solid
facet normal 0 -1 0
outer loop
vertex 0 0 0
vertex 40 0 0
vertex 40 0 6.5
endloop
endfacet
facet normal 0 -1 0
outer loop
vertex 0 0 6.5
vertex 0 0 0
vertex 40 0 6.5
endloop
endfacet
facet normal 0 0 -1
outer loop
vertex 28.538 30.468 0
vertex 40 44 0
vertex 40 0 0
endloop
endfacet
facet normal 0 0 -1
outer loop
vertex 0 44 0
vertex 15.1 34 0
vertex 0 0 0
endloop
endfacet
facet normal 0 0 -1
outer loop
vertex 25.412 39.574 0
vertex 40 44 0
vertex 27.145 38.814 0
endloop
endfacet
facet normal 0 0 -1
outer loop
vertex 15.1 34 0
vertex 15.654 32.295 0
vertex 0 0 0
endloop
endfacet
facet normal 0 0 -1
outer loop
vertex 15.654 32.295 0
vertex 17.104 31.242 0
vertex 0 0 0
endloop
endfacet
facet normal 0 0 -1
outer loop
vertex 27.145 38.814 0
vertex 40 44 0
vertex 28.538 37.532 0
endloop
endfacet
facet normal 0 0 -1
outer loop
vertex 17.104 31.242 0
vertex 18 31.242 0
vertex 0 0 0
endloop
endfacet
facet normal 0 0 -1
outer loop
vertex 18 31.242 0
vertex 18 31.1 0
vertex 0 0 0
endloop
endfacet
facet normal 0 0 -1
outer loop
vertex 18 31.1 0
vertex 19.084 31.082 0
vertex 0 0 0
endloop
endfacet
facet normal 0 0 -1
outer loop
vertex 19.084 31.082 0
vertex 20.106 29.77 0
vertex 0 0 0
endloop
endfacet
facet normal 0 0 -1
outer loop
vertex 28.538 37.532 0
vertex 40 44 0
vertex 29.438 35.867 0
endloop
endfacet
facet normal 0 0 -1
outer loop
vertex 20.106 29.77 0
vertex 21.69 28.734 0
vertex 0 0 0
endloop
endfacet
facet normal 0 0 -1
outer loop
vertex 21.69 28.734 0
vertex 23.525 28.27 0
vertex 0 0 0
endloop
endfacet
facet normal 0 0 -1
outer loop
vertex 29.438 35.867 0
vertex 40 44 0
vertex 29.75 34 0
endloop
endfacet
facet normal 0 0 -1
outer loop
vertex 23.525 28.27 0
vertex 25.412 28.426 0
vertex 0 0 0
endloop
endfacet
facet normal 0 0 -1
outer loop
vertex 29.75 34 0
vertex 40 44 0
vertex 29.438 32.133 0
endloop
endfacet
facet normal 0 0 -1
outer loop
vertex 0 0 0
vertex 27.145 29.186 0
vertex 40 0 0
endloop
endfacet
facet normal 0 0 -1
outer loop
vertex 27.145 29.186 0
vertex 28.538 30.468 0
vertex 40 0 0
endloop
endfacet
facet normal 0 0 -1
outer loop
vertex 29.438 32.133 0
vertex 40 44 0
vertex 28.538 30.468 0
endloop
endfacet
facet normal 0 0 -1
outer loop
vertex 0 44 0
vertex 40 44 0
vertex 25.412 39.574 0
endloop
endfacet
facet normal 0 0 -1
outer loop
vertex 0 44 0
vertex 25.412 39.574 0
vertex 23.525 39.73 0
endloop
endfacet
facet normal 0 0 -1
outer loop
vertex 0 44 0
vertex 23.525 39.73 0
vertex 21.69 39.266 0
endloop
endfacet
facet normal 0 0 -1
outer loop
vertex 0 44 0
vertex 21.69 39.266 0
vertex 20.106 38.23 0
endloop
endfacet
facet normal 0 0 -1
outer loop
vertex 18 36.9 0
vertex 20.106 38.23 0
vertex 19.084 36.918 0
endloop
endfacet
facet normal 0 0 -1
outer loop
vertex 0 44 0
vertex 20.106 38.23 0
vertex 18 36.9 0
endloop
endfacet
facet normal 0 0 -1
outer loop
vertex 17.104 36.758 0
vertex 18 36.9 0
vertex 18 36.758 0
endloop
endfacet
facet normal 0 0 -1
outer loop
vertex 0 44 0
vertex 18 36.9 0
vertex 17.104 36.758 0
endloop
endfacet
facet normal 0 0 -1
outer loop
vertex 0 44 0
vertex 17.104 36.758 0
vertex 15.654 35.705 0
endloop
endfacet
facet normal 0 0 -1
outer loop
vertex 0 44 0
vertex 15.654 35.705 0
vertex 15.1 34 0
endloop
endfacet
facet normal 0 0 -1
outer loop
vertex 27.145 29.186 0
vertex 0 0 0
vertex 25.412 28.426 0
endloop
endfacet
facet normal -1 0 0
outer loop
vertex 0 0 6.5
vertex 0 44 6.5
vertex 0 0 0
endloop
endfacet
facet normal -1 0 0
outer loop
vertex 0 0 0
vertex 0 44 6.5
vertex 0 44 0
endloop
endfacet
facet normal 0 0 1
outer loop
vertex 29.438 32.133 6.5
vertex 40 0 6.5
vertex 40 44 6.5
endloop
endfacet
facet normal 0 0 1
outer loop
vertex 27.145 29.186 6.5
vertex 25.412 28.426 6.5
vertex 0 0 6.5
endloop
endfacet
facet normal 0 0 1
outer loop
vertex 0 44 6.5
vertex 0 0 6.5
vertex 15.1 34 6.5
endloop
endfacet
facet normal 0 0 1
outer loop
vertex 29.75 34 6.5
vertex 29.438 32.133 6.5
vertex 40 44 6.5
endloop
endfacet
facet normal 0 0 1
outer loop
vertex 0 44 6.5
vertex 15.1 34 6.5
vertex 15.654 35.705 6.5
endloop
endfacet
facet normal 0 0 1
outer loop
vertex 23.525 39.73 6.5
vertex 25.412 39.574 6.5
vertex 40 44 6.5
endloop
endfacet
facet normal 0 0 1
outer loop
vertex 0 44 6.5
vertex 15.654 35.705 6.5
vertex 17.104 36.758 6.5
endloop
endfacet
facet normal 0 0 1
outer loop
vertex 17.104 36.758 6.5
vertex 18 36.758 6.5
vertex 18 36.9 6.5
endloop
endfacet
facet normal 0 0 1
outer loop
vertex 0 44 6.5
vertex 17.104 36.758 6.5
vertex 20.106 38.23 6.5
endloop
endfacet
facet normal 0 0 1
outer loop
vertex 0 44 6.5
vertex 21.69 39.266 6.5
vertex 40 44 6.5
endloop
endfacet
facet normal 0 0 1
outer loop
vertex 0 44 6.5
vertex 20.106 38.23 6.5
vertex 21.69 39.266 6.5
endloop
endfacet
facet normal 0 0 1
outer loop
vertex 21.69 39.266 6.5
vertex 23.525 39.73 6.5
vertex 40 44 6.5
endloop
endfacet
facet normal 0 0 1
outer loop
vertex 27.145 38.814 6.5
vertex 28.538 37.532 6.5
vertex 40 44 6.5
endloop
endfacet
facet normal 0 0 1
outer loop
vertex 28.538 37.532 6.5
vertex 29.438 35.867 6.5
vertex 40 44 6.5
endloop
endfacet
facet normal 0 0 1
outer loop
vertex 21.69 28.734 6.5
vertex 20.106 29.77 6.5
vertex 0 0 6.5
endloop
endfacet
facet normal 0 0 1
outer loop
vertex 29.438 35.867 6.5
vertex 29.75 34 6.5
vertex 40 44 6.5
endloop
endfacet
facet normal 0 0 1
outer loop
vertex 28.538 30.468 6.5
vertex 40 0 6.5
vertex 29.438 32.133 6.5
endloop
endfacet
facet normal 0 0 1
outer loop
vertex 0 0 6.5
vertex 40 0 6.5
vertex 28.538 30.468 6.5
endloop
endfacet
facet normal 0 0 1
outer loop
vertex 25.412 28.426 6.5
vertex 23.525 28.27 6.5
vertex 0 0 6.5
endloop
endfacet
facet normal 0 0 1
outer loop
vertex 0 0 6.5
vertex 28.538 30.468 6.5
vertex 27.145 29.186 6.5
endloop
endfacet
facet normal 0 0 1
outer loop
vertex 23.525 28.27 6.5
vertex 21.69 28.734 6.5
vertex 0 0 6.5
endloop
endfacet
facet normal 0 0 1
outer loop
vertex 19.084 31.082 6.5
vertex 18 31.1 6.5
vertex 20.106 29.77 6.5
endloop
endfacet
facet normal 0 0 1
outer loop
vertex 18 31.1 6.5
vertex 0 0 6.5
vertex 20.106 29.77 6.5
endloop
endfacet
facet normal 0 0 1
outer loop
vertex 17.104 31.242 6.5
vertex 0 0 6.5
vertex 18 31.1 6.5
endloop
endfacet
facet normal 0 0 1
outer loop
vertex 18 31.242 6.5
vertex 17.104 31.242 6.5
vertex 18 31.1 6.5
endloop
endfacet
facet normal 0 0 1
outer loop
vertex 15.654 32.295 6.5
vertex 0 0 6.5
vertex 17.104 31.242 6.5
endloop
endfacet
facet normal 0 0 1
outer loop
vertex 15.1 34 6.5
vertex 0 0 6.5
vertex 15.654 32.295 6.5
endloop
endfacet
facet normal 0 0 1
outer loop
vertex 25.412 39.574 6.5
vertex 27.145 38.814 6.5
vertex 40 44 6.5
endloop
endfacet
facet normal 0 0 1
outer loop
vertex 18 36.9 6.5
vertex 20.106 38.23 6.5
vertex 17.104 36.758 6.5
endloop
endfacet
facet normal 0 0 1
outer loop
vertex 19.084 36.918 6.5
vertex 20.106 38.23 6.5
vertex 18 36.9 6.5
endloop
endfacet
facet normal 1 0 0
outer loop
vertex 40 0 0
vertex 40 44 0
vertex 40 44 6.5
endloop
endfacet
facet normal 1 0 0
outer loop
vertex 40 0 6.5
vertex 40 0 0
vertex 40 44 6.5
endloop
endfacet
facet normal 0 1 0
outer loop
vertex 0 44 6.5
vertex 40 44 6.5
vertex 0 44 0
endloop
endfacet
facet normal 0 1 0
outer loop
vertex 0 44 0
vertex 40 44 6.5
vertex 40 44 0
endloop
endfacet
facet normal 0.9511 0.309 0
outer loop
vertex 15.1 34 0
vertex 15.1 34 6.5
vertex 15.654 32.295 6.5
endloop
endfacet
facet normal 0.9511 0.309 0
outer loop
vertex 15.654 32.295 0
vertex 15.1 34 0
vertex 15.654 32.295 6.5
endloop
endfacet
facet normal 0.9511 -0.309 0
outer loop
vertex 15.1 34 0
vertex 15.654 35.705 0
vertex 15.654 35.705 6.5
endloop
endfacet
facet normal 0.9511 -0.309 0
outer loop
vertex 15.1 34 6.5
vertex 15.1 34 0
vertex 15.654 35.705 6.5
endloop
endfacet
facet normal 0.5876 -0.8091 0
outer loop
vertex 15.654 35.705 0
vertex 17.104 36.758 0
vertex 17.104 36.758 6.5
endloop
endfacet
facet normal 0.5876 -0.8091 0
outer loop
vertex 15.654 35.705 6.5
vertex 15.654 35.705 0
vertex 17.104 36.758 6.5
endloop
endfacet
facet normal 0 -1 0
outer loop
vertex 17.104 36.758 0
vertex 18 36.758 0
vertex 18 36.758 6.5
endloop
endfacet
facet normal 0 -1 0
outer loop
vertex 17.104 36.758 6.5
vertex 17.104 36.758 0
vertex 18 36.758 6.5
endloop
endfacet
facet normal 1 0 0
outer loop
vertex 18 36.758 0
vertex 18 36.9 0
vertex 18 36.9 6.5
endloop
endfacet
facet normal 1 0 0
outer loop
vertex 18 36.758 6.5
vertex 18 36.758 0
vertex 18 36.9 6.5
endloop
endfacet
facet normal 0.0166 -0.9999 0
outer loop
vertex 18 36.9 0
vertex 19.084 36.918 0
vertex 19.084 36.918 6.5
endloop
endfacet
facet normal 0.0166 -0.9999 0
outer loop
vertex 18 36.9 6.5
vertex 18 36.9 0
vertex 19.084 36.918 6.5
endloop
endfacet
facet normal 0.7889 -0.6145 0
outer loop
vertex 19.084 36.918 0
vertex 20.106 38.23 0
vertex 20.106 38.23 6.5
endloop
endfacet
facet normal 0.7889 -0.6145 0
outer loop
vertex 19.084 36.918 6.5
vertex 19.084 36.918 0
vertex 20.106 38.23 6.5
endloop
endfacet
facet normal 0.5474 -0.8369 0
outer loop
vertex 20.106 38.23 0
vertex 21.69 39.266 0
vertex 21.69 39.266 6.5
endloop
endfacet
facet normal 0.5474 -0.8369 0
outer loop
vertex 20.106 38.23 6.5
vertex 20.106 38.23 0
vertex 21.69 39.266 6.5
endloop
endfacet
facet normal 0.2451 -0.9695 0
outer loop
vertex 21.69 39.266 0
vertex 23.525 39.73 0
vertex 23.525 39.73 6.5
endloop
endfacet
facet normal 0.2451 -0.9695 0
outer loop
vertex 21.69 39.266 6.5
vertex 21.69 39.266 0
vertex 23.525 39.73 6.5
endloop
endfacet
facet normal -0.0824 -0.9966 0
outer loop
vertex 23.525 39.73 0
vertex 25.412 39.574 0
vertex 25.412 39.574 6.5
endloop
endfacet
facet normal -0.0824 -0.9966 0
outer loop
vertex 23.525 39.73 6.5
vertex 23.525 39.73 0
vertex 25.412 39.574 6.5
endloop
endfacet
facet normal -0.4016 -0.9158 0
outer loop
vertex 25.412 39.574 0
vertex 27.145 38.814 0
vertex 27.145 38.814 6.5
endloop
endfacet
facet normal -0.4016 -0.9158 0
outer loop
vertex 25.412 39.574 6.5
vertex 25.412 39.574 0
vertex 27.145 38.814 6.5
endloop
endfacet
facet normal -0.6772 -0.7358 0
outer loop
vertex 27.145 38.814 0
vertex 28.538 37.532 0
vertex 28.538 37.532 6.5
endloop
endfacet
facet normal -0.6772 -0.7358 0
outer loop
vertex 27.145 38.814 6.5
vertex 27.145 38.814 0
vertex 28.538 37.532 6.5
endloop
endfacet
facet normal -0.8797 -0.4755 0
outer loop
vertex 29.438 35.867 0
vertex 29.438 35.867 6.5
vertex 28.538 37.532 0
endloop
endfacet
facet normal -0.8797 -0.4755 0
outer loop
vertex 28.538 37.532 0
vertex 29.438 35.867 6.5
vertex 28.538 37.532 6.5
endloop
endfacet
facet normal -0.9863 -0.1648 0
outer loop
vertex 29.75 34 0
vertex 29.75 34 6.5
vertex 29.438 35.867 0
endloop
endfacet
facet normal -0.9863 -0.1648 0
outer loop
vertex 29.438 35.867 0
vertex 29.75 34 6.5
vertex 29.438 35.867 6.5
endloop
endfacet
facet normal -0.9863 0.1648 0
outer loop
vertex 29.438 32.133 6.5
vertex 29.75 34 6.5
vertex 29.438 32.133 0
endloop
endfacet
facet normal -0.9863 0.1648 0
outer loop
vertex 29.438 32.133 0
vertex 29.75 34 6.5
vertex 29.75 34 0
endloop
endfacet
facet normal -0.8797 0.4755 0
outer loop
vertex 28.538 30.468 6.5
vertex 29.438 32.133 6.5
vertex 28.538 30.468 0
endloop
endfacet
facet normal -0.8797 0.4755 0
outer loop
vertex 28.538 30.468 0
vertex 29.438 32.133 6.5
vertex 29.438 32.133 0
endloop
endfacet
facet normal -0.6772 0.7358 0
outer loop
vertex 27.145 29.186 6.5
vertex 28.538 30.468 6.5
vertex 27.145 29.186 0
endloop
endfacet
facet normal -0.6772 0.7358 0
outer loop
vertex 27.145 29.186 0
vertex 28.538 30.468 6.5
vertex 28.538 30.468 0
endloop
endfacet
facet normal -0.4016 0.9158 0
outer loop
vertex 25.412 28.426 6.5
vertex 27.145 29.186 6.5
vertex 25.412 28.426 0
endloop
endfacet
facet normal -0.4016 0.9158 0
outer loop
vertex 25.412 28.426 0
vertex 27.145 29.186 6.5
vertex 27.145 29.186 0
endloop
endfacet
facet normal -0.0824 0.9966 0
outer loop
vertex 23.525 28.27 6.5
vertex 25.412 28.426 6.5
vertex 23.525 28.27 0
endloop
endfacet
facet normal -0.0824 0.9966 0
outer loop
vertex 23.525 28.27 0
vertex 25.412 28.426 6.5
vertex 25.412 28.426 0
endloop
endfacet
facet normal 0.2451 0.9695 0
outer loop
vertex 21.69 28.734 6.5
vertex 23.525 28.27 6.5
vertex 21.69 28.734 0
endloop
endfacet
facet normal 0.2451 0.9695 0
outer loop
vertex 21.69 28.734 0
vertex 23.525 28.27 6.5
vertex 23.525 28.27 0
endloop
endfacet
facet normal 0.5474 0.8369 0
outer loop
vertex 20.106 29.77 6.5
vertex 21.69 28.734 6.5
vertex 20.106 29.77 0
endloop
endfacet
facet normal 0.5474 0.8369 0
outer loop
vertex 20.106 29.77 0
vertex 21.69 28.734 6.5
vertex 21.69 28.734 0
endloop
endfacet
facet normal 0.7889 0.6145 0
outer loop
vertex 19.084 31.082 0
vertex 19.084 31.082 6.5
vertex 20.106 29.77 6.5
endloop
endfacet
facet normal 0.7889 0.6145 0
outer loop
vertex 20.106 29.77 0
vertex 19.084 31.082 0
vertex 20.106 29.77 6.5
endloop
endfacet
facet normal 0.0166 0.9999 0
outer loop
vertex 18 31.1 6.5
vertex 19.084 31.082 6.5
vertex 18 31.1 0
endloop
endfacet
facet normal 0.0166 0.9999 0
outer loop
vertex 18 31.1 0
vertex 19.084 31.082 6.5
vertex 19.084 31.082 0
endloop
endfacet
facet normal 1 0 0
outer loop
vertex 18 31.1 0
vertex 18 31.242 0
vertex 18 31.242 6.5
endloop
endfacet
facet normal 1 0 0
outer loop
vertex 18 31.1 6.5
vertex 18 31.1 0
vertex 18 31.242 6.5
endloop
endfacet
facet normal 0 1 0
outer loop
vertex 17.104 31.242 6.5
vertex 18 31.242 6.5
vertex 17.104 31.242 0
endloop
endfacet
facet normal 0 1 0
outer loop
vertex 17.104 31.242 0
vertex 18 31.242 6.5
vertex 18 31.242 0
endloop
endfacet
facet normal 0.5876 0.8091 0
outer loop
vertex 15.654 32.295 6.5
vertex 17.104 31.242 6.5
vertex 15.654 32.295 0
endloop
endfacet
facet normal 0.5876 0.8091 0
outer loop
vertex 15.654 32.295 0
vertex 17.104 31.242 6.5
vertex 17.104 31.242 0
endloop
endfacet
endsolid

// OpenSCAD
thickness=6.5;
wallh=44;
wallw=40;
distfrombottom=wallh-10;
distfromleft=wallw-16;
servobigcircle=11.5;
servosmallcircle=5.8;
polygonlefth=5.8;
polygonrighth=6;
polygonw=6;


linear_extrude(height=thickness)
servosocketwall();


module servosocketwall() {

 difference() {
  servowall();

  color("red")
  translate([distfromleft,distfrombottom])
  servosocket();

 }

}

module servowall() {

polygon( [ [0,0],[wallw,0],[wallw,wallh],[0,wallh] ] , [   [0,1,2,3] ]);

}

module servosocket() {

	union() {
	circle (d=servobigcircle);

	
	translate([-6,0])
	circle (d=servosmallcircle);
	
	
   polygon( [ 	[-polygonw,-polygonlefth/2],
					[-0,-polygonrighth/2],
					[0,polygonrighth/2],
					[-polygonw,polygonlefth/2] ] , 
									[   [0,1,2,3] ]);
   }
	
}
